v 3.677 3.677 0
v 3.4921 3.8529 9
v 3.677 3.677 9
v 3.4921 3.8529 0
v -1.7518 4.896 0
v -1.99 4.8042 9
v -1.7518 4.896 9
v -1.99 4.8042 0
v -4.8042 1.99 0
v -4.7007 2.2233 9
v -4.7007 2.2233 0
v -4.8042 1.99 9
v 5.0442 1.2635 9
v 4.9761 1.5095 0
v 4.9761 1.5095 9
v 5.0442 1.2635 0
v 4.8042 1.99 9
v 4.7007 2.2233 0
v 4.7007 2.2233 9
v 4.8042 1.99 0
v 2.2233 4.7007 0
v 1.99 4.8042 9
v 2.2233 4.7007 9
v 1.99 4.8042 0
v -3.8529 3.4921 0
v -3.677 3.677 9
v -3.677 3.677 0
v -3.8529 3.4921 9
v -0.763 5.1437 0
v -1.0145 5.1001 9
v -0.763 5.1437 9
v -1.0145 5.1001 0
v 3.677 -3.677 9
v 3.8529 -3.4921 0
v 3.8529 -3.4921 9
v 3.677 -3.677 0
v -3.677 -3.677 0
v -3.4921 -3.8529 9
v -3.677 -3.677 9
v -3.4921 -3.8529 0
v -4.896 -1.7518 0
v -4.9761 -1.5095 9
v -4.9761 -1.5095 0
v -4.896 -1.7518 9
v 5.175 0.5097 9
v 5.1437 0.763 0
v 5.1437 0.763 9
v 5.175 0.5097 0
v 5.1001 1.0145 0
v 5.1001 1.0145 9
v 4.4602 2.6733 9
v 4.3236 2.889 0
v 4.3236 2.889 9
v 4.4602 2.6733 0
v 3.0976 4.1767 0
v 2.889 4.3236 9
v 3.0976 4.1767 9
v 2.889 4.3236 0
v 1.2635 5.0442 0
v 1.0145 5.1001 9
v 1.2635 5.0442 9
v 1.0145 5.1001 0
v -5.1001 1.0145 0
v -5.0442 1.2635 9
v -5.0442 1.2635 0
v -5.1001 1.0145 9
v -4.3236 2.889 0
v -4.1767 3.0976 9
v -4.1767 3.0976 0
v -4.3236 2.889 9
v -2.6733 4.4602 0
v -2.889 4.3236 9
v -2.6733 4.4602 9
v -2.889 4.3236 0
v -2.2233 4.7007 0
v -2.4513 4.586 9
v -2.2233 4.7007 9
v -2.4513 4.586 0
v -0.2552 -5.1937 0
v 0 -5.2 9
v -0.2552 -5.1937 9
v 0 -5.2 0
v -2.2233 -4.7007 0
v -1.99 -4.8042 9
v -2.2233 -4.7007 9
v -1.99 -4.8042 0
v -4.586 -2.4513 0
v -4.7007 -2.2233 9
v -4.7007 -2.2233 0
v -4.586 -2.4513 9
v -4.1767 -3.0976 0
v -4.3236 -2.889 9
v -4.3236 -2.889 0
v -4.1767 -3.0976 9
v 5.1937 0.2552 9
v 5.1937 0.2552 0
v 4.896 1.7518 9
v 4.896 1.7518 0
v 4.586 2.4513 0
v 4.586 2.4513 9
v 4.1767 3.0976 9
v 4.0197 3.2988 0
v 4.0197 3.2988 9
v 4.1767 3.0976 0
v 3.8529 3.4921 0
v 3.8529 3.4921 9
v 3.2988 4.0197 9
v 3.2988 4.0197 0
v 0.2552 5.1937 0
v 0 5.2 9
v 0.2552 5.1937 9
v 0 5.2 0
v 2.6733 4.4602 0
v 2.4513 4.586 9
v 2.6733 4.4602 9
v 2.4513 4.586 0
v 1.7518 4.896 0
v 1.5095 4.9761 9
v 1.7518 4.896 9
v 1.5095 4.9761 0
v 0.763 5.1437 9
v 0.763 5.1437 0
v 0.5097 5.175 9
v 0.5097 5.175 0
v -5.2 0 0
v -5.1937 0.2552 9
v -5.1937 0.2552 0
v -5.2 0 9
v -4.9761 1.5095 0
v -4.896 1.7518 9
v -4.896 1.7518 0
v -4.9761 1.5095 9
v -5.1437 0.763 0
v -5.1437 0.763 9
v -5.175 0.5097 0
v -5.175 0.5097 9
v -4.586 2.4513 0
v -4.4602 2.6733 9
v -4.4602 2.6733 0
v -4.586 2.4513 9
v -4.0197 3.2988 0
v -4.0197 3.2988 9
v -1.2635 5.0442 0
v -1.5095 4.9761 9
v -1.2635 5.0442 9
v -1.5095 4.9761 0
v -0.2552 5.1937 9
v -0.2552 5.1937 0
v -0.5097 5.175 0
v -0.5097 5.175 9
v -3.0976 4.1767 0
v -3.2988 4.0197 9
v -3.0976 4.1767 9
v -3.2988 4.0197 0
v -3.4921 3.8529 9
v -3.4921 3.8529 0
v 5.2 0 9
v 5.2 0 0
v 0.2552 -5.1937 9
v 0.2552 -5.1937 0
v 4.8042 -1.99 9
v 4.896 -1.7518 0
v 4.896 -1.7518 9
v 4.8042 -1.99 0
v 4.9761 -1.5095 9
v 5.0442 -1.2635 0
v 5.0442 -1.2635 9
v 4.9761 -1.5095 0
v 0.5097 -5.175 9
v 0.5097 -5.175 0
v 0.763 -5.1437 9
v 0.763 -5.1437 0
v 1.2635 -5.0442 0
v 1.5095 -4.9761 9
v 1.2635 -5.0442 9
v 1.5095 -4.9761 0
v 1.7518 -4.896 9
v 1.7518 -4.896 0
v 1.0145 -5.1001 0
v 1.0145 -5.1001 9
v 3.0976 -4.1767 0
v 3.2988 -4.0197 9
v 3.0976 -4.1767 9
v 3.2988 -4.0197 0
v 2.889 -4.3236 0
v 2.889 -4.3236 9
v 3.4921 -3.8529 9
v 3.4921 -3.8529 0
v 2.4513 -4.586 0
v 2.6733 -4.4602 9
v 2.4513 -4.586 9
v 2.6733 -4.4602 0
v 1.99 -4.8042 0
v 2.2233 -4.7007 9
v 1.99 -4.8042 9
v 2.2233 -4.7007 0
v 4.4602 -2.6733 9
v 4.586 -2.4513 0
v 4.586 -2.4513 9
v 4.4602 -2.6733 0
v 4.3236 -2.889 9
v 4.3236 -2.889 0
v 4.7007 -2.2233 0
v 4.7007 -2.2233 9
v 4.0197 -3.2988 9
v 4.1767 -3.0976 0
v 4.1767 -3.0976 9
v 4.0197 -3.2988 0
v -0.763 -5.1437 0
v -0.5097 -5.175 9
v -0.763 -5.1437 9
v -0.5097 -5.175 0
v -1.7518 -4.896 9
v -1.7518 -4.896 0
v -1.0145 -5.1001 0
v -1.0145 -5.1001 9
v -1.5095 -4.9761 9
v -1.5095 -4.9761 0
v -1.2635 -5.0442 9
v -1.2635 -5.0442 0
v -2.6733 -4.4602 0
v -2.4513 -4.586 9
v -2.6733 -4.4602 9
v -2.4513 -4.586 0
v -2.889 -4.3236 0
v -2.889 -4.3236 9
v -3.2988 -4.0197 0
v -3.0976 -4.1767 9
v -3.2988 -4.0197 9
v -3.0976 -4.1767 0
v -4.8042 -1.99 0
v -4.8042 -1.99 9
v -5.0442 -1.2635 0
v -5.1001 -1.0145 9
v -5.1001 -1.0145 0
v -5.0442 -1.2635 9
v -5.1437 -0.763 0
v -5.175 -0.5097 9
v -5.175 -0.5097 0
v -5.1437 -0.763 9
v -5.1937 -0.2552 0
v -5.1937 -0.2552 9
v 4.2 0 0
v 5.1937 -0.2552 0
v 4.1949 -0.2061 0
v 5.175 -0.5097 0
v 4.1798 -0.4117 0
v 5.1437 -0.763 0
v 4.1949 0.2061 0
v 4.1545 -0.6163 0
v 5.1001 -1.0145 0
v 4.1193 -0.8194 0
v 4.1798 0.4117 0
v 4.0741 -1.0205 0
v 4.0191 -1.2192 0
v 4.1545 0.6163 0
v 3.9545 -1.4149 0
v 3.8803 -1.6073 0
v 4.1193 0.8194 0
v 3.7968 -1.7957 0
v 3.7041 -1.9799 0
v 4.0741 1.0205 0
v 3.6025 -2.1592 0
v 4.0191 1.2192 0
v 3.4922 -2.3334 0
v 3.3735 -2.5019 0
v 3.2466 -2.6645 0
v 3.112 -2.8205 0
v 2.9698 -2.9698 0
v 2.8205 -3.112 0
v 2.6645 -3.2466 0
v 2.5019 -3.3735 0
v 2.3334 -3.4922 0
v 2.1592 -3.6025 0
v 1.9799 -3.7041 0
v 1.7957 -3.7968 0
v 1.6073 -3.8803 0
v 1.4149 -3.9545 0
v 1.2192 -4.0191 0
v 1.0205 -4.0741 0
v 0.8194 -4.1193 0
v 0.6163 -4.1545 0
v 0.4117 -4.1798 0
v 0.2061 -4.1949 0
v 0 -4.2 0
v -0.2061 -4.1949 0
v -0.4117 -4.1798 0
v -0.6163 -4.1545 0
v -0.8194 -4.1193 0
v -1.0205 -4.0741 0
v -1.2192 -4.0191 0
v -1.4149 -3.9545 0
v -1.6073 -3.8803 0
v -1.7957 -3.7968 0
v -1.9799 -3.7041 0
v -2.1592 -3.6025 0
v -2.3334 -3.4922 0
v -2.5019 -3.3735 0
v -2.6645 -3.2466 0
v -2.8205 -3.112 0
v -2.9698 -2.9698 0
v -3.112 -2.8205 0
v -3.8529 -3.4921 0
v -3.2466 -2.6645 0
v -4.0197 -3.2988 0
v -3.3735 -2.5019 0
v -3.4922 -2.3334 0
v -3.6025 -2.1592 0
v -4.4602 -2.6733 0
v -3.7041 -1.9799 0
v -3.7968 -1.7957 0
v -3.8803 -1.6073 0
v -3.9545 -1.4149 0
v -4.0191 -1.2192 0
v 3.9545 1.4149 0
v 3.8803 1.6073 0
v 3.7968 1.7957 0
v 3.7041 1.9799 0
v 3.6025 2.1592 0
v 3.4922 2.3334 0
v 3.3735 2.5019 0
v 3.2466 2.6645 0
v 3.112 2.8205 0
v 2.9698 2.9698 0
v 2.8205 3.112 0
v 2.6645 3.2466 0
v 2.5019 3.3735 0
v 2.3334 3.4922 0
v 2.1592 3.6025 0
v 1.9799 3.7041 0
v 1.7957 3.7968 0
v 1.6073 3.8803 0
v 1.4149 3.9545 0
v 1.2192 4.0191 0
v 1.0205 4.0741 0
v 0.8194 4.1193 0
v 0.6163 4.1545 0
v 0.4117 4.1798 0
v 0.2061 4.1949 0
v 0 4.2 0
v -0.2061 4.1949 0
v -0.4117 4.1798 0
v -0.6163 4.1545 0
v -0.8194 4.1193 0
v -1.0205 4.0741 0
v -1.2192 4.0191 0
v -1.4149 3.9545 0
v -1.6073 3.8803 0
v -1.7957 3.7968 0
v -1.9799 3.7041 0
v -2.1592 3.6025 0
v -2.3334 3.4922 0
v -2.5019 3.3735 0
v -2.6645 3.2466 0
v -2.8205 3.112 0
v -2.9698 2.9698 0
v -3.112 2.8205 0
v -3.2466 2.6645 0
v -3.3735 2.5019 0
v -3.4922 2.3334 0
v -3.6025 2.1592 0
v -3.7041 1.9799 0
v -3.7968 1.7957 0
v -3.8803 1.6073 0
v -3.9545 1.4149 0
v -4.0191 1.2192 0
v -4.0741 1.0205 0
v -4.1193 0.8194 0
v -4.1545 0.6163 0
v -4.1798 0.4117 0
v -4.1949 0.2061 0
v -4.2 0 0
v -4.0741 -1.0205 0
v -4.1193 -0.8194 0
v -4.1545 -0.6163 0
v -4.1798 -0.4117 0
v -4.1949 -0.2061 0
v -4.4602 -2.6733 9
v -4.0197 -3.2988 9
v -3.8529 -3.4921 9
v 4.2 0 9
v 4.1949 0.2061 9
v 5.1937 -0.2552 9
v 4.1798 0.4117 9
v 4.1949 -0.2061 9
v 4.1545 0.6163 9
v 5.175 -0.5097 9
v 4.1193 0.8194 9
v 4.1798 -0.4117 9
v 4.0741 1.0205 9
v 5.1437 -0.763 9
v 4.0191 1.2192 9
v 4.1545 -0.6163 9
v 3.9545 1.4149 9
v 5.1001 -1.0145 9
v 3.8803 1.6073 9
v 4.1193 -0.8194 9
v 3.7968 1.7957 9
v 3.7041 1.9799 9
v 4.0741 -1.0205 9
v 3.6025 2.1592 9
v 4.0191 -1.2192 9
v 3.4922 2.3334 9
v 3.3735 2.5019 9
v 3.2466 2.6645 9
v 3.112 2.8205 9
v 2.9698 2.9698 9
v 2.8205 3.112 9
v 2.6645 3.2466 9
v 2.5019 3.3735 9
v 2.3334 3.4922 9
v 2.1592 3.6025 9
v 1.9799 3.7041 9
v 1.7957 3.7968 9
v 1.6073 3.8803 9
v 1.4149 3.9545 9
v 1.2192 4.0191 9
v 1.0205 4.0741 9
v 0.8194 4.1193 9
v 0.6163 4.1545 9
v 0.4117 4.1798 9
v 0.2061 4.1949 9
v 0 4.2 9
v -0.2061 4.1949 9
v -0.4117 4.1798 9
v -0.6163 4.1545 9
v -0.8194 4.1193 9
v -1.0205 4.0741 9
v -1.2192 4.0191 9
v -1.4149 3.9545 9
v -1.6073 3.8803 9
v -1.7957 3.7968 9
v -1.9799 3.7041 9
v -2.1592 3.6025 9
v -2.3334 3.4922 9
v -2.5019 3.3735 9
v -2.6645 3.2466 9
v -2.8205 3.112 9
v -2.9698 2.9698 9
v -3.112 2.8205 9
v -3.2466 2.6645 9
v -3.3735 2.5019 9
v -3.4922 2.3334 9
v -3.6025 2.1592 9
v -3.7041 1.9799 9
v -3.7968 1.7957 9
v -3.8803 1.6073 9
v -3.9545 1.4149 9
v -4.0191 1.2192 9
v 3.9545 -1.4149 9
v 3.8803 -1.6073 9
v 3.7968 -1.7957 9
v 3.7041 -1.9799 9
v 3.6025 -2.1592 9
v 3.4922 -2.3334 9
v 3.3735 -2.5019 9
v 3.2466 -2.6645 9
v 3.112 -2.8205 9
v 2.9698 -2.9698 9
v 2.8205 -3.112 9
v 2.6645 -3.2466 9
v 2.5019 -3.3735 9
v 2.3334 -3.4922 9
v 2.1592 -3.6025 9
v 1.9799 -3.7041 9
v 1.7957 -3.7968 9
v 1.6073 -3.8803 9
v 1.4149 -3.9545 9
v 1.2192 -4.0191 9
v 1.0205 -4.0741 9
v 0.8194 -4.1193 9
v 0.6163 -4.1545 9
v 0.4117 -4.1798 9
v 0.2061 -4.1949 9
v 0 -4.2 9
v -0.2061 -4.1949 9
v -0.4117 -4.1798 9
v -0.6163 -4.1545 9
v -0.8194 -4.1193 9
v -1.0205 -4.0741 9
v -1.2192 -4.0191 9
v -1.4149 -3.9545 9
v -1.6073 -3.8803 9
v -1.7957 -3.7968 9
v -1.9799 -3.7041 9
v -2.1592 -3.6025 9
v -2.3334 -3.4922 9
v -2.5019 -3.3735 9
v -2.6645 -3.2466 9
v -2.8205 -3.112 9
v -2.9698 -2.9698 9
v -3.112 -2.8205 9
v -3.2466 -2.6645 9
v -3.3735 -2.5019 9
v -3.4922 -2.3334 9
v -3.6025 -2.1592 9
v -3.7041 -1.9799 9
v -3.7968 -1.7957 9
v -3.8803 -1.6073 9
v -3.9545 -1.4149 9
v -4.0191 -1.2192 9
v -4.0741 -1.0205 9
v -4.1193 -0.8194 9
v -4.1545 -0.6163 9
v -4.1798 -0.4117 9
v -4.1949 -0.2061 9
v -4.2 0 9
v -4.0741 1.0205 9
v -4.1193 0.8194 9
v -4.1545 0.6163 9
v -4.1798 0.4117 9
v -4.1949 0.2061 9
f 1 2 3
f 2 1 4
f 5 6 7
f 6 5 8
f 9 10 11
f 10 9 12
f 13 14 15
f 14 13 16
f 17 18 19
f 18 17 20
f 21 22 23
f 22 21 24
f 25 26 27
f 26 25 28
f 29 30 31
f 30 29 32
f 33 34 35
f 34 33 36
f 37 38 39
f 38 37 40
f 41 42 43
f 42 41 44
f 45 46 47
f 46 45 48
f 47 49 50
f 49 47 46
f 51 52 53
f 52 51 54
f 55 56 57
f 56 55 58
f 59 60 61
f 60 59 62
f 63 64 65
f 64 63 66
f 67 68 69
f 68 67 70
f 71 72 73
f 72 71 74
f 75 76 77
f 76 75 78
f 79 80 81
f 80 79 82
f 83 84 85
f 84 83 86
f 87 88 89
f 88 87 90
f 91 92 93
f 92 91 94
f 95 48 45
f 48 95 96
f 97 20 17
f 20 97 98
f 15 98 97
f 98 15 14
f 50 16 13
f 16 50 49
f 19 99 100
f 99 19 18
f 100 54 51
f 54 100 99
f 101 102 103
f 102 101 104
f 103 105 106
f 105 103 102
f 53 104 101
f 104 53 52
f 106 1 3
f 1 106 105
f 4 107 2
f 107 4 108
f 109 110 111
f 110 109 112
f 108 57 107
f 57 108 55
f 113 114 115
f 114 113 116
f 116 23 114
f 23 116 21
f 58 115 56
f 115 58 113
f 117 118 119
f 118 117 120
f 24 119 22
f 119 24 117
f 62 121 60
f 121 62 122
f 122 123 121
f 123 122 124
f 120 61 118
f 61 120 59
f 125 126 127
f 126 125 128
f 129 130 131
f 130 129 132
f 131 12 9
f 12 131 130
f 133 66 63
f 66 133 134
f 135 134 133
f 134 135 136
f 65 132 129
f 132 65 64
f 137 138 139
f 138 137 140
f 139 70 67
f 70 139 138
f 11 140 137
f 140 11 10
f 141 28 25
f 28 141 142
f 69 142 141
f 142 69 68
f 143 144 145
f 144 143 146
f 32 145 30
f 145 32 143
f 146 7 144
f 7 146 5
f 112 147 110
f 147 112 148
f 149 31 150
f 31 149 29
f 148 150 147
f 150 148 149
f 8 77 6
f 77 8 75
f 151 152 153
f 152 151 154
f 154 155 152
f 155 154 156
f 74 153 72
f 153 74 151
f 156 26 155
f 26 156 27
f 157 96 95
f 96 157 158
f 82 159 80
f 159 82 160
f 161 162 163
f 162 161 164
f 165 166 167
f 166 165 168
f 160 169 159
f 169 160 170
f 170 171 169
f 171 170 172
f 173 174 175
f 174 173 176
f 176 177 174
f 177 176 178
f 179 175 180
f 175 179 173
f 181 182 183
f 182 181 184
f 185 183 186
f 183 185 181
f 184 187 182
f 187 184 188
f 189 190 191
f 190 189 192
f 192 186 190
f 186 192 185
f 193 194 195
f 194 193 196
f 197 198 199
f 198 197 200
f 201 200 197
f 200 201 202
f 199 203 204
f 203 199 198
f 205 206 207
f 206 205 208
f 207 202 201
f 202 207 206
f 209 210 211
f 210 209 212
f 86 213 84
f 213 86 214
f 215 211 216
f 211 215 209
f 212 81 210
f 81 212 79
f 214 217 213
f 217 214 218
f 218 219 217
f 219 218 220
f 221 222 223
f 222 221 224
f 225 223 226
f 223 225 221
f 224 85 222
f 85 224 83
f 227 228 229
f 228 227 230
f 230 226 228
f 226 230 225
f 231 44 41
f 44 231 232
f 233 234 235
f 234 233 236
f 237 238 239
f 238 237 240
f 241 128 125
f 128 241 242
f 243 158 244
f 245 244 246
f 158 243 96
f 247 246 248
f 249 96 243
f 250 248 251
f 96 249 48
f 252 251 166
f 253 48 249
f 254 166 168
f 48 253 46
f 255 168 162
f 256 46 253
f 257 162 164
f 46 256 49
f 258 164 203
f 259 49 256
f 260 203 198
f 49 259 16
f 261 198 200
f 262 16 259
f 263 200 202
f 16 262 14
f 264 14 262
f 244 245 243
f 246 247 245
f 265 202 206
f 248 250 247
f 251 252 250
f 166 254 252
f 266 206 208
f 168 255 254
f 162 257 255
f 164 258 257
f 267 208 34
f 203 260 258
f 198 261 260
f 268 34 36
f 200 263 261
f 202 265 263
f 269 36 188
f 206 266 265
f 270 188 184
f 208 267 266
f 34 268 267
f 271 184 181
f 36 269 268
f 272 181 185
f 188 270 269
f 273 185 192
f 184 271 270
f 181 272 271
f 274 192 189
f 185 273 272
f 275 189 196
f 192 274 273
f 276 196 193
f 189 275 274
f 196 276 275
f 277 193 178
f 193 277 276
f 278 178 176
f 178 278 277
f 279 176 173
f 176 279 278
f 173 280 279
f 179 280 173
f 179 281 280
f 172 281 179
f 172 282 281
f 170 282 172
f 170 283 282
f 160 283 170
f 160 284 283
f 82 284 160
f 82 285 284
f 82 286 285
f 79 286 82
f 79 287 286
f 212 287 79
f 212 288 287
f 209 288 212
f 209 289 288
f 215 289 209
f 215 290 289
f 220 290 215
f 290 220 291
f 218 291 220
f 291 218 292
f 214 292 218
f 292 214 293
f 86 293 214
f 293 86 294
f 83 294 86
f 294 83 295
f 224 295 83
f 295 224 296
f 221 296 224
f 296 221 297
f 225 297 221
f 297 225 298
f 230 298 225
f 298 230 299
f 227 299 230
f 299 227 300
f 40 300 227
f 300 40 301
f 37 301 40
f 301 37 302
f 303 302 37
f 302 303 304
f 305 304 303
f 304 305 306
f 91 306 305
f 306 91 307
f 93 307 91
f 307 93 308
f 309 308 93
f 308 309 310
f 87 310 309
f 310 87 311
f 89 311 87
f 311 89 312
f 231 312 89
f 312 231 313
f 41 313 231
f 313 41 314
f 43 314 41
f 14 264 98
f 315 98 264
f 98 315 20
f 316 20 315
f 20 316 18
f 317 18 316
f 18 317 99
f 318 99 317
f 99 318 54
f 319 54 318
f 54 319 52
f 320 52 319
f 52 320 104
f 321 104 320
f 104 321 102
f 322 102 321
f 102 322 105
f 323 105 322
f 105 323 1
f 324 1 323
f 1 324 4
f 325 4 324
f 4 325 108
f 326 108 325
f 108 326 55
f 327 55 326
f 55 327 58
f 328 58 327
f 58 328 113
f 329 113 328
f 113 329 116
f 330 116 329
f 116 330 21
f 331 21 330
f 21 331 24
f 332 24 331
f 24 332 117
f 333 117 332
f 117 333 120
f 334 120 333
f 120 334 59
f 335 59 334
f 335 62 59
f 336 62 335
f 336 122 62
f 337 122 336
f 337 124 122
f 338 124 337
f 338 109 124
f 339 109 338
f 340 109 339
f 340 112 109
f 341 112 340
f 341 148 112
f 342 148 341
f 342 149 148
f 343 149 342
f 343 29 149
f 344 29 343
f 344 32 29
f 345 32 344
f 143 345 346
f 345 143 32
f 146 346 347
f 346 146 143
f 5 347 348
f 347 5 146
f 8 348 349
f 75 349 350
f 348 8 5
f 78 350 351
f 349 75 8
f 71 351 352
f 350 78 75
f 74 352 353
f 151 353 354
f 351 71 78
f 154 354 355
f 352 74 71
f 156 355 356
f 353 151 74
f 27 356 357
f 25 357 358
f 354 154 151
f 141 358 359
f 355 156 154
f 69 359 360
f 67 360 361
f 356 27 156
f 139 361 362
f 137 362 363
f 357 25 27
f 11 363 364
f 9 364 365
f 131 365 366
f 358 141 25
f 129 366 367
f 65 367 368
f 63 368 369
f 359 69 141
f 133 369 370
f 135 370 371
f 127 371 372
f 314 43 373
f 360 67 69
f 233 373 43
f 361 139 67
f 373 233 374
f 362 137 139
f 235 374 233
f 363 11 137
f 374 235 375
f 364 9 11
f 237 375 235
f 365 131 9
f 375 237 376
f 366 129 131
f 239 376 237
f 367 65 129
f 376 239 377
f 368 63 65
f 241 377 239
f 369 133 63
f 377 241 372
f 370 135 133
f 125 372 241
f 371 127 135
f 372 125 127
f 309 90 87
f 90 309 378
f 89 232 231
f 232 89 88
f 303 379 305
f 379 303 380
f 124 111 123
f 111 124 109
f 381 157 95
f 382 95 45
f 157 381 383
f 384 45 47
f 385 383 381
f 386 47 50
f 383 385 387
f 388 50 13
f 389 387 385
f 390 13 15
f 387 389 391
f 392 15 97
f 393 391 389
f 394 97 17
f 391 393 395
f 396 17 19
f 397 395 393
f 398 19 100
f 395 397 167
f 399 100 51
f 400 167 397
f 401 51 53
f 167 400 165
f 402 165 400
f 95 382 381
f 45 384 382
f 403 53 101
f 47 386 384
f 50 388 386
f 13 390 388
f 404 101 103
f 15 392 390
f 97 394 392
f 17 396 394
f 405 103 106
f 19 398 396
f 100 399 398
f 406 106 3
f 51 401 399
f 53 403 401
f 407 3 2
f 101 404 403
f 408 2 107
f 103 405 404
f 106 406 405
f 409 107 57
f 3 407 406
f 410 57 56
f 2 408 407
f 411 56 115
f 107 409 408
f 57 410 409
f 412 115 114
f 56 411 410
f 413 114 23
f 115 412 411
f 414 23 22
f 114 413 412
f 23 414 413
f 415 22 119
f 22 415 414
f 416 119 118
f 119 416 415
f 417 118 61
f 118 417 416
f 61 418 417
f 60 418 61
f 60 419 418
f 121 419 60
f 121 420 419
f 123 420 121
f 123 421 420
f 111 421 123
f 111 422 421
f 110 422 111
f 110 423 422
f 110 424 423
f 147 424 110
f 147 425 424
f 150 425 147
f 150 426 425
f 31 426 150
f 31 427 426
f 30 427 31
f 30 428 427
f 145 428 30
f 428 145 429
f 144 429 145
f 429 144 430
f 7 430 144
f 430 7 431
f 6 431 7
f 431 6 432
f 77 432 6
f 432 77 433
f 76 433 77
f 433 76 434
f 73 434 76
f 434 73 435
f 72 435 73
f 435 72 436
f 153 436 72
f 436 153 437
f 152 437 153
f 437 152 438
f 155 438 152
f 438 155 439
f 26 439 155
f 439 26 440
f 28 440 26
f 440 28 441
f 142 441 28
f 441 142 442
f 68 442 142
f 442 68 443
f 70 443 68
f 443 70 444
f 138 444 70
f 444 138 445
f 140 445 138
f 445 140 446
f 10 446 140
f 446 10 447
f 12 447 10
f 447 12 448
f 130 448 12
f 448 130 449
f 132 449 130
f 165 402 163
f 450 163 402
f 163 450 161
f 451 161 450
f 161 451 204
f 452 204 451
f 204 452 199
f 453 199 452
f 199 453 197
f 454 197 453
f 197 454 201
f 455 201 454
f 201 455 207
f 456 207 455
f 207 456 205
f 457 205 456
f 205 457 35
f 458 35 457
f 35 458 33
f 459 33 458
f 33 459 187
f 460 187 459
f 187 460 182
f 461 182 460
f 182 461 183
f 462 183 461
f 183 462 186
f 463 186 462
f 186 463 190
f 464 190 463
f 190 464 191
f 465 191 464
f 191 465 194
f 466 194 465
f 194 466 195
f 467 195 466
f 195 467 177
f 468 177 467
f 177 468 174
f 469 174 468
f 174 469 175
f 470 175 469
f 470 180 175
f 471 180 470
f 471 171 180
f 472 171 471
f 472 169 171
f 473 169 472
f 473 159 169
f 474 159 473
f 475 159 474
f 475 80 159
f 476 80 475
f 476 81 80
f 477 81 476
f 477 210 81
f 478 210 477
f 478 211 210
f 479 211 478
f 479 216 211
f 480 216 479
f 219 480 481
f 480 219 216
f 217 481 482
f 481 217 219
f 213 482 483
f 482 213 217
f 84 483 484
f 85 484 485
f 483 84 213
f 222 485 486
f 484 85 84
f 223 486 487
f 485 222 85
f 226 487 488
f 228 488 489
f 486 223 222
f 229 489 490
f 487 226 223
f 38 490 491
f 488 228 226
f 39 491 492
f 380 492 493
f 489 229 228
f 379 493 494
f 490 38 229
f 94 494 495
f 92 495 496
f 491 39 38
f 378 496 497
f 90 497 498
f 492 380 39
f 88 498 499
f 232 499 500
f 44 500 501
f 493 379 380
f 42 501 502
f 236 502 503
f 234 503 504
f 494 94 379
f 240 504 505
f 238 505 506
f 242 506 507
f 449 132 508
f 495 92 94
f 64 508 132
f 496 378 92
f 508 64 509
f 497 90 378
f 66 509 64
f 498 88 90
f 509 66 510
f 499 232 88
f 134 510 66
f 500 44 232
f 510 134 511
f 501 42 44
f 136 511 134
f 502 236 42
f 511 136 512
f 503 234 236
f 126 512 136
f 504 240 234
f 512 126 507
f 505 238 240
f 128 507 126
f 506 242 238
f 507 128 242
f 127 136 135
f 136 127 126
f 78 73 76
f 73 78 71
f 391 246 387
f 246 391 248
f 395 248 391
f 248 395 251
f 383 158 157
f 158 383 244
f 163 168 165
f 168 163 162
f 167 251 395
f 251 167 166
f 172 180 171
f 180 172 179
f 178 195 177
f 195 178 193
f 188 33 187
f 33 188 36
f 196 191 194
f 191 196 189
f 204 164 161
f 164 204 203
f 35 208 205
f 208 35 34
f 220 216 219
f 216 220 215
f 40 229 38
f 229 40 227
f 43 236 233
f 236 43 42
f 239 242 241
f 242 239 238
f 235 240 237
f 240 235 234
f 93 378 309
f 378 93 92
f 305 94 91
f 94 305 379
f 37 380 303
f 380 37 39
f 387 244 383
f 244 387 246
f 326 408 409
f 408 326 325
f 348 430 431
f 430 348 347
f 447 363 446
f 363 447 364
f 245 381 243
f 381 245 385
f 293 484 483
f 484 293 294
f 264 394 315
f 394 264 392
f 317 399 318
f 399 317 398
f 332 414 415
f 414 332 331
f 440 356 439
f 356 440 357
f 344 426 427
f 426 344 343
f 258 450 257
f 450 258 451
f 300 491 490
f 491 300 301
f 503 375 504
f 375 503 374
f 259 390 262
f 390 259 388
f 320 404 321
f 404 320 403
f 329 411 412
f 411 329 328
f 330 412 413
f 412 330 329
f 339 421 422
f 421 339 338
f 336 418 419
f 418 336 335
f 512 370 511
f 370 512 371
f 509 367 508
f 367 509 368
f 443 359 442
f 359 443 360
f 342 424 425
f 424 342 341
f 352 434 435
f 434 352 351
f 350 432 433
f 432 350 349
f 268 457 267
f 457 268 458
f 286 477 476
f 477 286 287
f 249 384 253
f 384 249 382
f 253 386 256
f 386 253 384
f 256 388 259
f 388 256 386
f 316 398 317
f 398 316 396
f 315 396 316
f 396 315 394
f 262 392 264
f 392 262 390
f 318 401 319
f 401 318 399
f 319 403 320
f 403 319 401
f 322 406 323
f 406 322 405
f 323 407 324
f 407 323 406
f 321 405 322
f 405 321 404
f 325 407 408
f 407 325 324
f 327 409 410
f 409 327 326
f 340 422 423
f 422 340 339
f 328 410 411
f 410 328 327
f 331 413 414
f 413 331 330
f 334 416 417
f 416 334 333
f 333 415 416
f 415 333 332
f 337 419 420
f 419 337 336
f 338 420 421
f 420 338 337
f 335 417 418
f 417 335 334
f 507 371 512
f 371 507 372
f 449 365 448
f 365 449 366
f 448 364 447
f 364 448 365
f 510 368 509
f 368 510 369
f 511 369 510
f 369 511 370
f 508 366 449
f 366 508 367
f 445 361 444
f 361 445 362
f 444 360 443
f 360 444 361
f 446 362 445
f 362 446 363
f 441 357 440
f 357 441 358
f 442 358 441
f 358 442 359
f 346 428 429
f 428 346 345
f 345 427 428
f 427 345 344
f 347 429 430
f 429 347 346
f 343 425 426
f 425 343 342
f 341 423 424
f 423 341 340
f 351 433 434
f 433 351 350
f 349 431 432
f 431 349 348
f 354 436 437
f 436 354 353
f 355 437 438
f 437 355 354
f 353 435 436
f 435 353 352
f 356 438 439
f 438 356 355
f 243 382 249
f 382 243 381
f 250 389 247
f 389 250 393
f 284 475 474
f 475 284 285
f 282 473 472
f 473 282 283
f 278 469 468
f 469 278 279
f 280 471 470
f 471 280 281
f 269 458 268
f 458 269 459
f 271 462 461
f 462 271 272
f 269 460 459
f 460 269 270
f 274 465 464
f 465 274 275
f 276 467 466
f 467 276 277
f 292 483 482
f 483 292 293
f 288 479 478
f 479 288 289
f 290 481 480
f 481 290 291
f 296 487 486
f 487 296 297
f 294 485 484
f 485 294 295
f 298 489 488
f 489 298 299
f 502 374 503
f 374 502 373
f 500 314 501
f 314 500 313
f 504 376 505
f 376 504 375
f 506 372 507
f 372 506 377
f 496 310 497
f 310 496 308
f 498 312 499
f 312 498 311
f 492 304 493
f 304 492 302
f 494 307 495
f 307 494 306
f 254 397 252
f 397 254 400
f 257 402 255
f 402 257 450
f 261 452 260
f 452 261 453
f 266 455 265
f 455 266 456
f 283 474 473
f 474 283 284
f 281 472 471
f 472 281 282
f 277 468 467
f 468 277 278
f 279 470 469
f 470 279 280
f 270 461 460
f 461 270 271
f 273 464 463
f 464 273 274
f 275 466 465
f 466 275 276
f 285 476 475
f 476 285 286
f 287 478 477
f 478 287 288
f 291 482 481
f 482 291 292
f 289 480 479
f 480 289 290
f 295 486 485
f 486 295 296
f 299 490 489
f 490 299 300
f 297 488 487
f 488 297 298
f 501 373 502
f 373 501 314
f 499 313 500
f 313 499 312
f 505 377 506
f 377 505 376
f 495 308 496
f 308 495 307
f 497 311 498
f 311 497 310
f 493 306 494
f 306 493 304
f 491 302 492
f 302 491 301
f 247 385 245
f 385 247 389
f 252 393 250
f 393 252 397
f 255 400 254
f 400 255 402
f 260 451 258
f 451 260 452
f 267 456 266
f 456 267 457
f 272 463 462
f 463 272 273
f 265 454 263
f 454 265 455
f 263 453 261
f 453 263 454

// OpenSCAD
// Definitions
// **************************

innerdia = 8.4;
thick = 2;
length = 9;

//Definition of circle angular resolution
$fn = 128;  


union () {
 difference () {
 
     // main block
   translate ([0,0,0]) cylinder (h=length,r=(thick+innerdia)/2);


       
   //remove inner
   translate ([0,0,-1]) cylinder (h=length+2,r=innerdia/2);
   
  


     
   

         
 };      
};
